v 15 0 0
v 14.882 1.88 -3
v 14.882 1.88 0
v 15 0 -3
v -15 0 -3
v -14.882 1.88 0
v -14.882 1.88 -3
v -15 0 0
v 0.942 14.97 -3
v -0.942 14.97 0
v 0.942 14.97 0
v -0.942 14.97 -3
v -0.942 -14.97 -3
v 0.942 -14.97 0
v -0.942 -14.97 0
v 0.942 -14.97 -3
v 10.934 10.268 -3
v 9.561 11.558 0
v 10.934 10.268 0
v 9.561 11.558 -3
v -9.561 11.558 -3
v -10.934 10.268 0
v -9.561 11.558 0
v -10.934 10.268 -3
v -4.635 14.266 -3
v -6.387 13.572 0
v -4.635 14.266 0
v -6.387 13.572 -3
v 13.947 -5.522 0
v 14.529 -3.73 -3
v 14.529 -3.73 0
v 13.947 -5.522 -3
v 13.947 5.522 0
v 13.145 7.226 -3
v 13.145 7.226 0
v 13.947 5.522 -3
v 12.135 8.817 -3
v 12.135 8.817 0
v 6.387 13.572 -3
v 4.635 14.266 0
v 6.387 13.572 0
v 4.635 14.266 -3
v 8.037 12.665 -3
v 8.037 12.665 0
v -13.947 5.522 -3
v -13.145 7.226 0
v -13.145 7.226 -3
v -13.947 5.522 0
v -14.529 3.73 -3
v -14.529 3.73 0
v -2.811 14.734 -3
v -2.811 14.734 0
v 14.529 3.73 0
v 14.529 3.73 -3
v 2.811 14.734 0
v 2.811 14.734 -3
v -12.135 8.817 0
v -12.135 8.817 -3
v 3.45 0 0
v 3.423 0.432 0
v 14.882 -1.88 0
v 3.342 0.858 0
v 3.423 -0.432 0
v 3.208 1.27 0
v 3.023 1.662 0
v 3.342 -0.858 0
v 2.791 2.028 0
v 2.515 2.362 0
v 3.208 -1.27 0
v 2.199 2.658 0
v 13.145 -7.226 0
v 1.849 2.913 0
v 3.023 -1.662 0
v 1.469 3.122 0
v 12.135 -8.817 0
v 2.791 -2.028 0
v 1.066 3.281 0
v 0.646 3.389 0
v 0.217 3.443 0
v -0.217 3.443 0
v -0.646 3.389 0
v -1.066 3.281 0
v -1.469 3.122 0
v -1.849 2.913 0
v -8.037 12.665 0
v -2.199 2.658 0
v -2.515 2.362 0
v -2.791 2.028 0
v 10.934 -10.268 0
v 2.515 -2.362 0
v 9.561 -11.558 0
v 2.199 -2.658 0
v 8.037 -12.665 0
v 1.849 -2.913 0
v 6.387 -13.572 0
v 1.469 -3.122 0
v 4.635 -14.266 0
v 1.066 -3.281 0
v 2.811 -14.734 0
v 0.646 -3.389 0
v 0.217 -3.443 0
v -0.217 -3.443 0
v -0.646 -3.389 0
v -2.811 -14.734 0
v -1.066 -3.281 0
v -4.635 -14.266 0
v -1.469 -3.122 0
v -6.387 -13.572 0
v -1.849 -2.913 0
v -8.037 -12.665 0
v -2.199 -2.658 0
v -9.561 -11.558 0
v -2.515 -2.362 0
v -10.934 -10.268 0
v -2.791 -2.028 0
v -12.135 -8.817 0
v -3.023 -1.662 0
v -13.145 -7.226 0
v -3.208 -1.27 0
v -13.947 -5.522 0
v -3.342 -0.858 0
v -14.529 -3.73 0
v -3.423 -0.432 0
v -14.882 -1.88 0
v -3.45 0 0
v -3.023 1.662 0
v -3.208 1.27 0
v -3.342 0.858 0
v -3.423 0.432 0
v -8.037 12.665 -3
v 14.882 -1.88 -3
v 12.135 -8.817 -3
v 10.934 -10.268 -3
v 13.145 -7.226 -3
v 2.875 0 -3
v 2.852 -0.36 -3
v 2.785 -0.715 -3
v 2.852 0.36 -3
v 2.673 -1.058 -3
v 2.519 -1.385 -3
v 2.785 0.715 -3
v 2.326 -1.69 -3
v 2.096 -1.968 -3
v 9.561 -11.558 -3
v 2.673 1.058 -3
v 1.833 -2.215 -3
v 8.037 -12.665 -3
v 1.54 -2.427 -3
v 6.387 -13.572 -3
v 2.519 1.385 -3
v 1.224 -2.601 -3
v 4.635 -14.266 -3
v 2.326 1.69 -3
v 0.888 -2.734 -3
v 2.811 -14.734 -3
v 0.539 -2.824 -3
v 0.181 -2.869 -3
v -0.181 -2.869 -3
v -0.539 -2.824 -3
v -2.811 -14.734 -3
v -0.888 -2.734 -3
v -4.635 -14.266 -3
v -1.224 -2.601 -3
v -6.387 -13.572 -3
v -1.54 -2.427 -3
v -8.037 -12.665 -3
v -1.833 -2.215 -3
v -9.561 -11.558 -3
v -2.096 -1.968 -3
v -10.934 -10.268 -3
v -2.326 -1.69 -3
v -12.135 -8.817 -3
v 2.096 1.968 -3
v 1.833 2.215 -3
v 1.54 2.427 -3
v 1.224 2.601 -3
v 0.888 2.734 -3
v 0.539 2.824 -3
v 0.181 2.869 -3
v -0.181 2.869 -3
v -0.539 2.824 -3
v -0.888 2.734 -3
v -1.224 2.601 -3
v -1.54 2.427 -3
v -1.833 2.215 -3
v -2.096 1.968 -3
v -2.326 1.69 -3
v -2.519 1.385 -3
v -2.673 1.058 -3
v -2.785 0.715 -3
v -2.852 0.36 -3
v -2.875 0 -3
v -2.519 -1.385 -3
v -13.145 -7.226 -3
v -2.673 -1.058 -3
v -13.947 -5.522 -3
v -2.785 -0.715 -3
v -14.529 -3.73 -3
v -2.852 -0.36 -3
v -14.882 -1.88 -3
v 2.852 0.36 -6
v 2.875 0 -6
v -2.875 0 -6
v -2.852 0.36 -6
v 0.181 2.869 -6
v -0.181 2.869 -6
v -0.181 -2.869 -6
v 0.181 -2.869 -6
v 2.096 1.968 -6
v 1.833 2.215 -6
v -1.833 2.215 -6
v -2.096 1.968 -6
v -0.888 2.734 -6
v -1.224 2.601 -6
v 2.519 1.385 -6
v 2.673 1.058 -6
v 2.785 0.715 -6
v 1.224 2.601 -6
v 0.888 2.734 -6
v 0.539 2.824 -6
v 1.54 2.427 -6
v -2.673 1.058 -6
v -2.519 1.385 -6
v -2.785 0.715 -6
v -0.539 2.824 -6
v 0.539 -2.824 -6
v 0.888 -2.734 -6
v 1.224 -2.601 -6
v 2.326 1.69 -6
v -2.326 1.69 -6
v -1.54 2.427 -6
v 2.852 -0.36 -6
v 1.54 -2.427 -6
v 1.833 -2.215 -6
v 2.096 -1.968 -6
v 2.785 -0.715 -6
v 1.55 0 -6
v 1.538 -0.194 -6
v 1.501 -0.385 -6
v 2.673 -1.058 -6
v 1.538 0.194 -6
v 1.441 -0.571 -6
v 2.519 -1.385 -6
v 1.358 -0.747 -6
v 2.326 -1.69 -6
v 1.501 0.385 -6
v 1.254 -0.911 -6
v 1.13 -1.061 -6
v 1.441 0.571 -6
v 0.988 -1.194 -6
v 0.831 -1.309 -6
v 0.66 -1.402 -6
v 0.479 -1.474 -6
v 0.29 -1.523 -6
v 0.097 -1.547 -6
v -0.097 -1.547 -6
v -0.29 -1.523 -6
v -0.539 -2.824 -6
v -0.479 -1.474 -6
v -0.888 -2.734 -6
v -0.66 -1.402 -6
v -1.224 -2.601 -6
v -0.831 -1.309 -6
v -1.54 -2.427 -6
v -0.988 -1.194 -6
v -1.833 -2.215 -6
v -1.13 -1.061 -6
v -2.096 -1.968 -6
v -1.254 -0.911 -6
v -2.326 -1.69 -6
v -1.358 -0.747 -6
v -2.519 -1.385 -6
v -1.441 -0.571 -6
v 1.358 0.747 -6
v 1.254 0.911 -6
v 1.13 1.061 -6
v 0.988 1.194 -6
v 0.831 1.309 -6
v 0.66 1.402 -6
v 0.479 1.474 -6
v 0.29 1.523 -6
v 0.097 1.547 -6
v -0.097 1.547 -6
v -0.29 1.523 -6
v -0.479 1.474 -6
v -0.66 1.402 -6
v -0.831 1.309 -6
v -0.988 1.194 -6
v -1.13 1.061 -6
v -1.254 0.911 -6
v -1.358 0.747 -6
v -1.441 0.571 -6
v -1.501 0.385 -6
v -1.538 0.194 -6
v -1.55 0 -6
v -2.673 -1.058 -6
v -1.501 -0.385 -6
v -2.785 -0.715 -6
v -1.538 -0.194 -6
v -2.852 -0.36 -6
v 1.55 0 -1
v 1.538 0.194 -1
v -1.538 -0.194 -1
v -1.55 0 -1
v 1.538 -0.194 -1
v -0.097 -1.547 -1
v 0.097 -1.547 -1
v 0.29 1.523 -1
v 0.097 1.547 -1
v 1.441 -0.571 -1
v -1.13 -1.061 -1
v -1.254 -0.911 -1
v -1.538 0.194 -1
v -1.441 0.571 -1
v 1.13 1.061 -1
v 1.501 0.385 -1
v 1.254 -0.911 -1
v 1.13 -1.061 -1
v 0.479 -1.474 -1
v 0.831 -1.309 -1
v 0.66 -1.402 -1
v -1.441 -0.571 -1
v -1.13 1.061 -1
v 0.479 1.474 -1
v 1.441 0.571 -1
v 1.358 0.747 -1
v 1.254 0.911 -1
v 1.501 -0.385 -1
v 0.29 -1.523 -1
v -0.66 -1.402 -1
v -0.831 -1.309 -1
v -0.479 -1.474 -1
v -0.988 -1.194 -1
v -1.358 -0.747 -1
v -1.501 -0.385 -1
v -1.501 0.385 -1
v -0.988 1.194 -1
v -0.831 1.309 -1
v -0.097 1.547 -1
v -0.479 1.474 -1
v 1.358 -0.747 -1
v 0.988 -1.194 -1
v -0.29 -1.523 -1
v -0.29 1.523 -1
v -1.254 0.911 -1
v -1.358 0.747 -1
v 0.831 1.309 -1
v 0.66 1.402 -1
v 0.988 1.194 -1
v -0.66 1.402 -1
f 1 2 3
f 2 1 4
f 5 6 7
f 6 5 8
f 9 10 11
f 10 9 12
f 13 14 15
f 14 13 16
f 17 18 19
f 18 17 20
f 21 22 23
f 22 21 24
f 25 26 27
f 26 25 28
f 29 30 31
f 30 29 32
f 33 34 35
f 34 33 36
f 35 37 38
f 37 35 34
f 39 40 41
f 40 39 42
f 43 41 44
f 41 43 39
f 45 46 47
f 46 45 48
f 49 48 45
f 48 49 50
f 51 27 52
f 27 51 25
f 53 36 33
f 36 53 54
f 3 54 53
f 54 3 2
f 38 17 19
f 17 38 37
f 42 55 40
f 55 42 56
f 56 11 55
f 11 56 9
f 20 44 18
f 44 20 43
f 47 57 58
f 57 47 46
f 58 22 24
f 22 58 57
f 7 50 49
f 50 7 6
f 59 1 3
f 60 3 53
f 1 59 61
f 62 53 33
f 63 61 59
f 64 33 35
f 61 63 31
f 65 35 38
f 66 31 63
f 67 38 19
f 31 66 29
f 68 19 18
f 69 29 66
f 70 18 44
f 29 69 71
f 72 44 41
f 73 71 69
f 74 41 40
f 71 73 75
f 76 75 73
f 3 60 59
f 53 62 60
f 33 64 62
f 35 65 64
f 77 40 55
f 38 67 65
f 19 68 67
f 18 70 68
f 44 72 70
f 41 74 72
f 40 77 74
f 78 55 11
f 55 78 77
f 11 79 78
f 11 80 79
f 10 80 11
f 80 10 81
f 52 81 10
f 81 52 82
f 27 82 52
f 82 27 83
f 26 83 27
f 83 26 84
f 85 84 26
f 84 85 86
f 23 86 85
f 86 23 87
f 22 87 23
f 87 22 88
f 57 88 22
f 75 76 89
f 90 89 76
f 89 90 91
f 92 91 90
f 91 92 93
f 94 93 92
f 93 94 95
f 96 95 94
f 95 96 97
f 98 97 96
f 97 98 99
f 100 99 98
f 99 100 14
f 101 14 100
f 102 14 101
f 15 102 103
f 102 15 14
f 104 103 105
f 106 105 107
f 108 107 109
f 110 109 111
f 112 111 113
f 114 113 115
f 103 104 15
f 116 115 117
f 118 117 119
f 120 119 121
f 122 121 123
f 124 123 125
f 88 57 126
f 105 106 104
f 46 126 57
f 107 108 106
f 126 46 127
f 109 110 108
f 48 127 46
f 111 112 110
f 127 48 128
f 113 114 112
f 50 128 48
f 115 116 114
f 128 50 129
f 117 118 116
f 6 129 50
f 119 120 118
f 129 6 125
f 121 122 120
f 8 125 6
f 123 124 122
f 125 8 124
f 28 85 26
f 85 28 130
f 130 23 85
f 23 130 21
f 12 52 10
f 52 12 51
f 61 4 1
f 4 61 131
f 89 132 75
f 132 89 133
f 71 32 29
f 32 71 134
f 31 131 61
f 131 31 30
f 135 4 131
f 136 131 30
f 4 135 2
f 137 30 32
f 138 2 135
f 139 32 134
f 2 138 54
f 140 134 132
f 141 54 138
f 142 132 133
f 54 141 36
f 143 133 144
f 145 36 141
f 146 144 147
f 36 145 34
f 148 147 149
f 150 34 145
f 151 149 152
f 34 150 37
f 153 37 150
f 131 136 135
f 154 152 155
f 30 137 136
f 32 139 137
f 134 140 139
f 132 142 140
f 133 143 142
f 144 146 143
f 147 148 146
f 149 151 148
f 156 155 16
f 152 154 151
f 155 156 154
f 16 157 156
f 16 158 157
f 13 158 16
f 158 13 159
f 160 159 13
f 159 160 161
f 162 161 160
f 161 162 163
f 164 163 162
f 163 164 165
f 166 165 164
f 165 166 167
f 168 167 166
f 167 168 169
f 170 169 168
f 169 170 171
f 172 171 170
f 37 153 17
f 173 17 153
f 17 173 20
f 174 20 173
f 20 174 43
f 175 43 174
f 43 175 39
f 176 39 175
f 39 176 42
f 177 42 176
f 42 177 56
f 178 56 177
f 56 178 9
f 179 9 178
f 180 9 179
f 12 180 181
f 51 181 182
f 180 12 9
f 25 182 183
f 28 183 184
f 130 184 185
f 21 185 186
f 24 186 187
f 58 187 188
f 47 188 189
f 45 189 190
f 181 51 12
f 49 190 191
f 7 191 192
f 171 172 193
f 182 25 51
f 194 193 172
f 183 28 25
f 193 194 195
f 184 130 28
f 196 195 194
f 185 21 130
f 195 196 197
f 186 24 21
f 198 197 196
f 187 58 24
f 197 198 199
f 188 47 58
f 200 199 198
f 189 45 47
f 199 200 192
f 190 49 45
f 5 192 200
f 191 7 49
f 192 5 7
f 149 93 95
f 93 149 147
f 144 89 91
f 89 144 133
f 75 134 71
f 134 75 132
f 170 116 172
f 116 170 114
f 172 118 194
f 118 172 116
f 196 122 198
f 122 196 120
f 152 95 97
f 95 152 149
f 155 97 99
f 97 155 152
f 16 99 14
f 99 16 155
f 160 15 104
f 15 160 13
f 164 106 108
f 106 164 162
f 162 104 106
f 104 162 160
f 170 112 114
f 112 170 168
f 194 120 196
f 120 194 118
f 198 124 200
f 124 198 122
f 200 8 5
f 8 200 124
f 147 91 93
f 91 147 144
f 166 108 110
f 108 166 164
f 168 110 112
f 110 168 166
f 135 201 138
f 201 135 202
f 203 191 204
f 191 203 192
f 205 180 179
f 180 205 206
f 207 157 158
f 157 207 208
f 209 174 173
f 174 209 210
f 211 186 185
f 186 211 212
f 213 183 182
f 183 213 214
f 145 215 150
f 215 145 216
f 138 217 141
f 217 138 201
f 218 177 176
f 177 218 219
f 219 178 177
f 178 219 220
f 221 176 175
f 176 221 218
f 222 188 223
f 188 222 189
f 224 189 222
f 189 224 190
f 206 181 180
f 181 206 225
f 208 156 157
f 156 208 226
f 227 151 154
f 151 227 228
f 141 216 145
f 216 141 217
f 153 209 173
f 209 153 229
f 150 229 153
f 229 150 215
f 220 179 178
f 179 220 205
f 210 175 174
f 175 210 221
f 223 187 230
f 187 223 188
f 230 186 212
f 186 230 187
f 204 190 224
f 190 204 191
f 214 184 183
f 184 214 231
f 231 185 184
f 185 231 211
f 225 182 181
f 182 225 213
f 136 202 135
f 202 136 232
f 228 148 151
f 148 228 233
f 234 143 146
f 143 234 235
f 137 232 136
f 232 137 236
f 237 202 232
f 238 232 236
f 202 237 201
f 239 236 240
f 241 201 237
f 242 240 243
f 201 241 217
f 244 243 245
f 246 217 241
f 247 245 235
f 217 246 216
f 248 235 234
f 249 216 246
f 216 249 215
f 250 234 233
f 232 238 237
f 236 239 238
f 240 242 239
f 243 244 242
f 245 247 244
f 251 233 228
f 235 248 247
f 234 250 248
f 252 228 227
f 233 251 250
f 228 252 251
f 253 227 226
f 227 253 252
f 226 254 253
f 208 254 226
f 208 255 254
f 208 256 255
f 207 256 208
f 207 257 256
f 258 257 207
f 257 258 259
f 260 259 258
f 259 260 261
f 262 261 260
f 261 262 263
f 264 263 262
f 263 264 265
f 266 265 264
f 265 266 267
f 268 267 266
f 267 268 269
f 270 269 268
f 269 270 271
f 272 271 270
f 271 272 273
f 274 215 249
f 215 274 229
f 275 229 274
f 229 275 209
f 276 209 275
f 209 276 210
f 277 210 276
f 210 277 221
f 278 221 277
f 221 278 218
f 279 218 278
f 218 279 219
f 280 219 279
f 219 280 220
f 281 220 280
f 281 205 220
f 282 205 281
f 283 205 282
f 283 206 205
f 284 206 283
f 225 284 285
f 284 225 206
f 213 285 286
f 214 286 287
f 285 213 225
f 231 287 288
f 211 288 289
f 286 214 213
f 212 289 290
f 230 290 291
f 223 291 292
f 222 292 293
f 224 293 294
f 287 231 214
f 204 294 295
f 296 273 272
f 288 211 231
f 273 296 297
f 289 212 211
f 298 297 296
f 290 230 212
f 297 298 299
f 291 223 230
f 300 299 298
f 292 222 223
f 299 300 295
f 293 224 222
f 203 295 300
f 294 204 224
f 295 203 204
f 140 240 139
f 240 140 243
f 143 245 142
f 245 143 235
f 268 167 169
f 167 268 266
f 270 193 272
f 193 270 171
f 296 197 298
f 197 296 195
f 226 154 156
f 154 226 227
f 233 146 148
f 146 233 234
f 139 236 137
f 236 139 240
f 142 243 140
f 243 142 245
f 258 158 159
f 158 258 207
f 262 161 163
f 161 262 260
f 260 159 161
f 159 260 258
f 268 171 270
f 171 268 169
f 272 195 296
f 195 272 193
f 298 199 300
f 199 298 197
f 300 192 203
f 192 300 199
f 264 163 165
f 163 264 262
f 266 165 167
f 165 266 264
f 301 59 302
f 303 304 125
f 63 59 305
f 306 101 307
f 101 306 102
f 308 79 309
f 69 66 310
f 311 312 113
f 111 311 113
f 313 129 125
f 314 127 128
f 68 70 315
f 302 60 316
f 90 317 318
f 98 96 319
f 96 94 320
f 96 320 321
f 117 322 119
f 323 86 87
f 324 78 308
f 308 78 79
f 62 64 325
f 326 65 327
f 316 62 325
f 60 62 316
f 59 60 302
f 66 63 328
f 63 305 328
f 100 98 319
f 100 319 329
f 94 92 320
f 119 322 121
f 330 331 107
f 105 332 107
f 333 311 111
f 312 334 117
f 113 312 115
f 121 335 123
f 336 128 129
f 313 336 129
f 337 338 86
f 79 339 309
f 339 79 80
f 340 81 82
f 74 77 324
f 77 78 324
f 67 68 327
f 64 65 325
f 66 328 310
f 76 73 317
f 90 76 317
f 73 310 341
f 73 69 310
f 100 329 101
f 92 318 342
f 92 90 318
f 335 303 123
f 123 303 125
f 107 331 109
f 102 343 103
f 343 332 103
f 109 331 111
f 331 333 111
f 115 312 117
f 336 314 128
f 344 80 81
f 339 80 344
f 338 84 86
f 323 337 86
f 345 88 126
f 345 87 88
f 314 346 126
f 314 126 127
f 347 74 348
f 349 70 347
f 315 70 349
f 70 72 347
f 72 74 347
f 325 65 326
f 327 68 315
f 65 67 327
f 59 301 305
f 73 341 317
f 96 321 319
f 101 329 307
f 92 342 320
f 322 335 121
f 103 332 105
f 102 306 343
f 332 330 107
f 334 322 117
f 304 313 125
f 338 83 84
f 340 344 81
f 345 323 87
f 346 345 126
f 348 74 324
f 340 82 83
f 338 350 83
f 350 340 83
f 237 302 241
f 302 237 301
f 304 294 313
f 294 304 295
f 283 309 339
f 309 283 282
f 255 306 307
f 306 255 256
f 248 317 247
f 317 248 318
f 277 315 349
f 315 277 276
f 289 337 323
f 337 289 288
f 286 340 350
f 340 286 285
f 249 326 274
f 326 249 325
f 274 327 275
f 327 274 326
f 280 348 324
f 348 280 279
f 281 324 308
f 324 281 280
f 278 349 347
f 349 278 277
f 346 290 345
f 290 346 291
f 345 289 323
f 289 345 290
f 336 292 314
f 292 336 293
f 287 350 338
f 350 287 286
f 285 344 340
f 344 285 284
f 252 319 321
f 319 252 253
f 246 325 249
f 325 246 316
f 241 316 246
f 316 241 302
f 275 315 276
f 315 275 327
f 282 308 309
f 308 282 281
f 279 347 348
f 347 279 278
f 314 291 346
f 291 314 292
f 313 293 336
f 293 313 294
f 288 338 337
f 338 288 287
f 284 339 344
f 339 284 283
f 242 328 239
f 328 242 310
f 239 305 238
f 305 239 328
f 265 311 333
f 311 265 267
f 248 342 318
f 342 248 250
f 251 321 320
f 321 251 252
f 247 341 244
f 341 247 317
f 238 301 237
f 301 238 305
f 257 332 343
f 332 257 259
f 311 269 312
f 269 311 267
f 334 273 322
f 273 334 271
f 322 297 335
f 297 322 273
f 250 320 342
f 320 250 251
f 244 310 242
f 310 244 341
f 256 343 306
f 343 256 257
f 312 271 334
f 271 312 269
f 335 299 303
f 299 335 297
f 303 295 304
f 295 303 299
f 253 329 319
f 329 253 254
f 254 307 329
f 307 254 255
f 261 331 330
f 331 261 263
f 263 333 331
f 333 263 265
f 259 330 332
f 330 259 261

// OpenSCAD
$fn = 50;


difference() {
	union() {
		translate(v = [0, 0, -3.0000000000]) {
			cylinder(h = 3, r = 15.0000000000);
		}
		translate(v = [0, 0, -6.0000000000]) {
			cylinder(h = 6, r = 2.8750000000);
		}
	}
	union() {
		translate(v = [0, 0, 0]) {
			rotate(a = [0, 0, 0]) {
				difference() {
					union() {
						translate(v = [0, 0, -6.0000000000]) {
							cylinder(h = 6, r = 1.2500000000);
						}
						translate(v = [0, 0, -1.0000000000]) {
							cylinder(h = 1.0000000000, r1 = 1.5500000000, r2 = 3.4500000000);
						}
						translate(v = [0, 0, -6.0000000000]) {
							cylinder(h = 6, r = 1.5500000000);
						}
						translate(v = [0, 0, -6.0000000000]) {
							cylinder(h = 6, r = 1.2500000000);
						}
					}
					union();
				}
			}
		}
	}
}
